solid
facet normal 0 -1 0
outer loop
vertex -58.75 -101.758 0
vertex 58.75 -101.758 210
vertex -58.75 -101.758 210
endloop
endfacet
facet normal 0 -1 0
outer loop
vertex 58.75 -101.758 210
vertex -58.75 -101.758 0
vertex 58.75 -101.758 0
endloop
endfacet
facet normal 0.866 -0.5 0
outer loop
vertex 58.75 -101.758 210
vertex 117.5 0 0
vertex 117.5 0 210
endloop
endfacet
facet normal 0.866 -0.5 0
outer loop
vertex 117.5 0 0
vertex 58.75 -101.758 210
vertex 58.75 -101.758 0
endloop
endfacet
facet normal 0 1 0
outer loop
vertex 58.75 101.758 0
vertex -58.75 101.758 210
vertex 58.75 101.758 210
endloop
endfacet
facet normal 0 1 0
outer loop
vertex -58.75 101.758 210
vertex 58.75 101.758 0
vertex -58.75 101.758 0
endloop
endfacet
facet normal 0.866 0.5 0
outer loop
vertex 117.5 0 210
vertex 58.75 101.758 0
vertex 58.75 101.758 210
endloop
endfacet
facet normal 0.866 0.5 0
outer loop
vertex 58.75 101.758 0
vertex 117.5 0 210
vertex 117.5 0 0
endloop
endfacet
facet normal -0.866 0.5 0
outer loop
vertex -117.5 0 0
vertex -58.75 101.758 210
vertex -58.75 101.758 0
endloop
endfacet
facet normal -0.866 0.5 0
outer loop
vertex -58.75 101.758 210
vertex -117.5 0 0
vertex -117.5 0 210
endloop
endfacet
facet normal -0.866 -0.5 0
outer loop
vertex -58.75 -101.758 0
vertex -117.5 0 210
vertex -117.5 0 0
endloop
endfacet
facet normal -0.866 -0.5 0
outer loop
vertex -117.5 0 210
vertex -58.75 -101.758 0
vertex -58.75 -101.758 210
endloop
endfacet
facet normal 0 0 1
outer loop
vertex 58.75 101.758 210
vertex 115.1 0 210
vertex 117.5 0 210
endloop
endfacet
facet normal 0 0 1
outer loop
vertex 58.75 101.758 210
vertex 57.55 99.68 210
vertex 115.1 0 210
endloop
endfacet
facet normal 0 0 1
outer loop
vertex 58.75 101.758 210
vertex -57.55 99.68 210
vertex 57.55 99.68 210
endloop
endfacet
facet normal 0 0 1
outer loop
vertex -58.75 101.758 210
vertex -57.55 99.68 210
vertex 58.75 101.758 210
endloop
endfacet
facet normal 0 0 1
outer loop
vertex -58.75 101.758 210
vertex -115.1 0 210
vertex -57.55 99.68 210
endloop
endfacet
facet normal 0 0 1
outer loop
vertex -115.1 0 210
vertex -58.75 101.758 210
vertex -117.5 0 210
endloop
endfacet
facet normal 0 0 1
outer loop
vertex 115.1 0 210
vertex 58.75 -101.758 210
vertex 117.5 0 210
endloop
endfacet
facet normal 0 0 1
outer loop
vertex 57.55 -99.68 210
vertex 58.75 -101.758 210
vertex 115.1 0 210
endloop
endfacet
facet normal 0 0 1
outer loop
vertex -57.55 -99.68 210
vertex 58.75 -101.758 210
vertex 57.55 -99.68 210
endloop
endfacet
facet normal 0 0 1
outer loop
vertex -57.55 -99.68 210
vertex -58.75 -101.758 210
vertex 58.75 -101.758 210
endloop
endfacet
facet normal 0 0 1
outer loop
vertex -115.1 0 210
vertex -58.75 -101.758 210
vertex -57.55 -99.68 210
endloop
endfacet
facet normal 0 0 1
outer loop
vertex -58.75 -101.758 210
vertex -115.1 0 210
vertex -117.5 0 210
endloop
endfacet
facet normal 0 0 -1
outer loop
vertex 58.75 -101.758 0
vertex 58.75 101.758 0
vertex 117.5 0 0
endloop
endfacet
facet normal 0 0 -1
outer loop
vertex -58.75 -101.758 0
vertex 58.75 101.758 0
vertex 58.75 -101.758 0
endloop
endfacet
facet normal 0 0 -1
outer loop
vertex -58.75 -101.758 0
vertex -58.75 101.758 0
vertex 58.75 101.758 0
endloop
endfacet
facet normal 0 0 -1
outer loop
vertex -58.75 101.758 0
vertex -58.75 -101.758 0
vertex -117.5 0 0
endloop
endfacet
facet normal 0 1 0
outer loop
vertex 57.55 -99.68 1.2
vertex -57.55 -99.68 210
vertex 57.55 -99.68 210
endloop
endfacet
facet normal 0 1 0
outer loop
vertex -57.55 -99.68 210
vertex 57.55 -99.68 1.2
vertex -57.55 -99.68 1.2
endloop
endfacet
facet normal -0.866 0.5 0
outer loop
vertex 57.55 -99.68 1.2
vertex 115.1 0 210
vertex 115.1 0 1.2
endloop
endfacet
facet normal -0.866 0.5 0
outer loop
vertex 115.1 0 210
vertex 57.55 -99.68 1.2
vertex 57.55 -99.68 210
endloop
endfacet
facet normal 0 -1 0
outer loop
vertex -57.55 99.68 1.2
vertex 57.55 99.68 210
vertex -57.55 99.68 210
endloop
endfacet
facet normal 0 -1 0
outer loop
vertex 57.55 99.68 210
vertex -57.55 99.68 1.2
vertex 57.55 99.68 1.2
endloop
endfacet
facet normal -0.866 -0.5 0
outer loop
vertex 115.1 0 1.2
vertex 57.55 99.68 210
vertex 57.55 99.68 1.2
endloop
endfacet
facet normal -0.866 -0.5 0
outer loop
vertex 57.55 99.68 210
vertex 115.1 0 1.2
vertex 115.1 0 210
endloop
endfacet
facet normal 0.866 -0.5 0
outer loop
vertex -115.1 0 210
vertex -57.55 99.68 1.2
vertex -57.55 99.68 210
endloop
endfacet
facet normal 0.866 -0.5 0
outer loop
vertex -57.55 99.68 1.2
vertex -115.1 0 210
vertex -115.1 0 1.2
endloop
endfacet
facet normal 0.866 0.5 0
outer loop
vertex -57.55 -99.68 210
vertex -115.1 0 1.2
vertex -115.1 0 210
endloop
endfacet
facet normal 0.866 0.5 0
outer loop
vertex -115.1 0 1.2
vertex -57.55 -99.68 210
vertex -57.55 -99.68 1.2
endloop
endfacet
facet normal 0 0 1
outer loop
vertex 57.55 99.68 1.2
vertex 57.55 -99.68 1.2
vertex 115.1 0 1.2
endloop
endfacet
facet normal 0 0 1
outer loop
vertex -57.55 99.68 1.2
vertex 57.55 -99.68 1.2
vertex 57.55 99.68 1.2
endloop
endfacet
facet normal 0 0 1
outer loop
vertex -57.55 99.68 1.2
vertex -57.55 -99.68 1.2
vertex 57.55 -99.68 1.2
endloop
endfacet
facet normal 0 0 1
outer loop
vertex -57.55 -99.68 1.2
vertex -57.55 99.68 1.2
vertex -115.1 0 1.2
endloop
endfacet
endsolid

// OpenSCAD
bucket_diameter = 235;
bucket_height = 210;
wall_thickness = 1.2;

difference()
{
    cylinder(r=bucket_diameter/2, h=bucket_height, $fn=6);
    translate([0, 0, wall_thickness])
    cylinder(r=(bucket_diameter/2 - 2*wall_thickness), h=bucket_height, $fn=6);
}
